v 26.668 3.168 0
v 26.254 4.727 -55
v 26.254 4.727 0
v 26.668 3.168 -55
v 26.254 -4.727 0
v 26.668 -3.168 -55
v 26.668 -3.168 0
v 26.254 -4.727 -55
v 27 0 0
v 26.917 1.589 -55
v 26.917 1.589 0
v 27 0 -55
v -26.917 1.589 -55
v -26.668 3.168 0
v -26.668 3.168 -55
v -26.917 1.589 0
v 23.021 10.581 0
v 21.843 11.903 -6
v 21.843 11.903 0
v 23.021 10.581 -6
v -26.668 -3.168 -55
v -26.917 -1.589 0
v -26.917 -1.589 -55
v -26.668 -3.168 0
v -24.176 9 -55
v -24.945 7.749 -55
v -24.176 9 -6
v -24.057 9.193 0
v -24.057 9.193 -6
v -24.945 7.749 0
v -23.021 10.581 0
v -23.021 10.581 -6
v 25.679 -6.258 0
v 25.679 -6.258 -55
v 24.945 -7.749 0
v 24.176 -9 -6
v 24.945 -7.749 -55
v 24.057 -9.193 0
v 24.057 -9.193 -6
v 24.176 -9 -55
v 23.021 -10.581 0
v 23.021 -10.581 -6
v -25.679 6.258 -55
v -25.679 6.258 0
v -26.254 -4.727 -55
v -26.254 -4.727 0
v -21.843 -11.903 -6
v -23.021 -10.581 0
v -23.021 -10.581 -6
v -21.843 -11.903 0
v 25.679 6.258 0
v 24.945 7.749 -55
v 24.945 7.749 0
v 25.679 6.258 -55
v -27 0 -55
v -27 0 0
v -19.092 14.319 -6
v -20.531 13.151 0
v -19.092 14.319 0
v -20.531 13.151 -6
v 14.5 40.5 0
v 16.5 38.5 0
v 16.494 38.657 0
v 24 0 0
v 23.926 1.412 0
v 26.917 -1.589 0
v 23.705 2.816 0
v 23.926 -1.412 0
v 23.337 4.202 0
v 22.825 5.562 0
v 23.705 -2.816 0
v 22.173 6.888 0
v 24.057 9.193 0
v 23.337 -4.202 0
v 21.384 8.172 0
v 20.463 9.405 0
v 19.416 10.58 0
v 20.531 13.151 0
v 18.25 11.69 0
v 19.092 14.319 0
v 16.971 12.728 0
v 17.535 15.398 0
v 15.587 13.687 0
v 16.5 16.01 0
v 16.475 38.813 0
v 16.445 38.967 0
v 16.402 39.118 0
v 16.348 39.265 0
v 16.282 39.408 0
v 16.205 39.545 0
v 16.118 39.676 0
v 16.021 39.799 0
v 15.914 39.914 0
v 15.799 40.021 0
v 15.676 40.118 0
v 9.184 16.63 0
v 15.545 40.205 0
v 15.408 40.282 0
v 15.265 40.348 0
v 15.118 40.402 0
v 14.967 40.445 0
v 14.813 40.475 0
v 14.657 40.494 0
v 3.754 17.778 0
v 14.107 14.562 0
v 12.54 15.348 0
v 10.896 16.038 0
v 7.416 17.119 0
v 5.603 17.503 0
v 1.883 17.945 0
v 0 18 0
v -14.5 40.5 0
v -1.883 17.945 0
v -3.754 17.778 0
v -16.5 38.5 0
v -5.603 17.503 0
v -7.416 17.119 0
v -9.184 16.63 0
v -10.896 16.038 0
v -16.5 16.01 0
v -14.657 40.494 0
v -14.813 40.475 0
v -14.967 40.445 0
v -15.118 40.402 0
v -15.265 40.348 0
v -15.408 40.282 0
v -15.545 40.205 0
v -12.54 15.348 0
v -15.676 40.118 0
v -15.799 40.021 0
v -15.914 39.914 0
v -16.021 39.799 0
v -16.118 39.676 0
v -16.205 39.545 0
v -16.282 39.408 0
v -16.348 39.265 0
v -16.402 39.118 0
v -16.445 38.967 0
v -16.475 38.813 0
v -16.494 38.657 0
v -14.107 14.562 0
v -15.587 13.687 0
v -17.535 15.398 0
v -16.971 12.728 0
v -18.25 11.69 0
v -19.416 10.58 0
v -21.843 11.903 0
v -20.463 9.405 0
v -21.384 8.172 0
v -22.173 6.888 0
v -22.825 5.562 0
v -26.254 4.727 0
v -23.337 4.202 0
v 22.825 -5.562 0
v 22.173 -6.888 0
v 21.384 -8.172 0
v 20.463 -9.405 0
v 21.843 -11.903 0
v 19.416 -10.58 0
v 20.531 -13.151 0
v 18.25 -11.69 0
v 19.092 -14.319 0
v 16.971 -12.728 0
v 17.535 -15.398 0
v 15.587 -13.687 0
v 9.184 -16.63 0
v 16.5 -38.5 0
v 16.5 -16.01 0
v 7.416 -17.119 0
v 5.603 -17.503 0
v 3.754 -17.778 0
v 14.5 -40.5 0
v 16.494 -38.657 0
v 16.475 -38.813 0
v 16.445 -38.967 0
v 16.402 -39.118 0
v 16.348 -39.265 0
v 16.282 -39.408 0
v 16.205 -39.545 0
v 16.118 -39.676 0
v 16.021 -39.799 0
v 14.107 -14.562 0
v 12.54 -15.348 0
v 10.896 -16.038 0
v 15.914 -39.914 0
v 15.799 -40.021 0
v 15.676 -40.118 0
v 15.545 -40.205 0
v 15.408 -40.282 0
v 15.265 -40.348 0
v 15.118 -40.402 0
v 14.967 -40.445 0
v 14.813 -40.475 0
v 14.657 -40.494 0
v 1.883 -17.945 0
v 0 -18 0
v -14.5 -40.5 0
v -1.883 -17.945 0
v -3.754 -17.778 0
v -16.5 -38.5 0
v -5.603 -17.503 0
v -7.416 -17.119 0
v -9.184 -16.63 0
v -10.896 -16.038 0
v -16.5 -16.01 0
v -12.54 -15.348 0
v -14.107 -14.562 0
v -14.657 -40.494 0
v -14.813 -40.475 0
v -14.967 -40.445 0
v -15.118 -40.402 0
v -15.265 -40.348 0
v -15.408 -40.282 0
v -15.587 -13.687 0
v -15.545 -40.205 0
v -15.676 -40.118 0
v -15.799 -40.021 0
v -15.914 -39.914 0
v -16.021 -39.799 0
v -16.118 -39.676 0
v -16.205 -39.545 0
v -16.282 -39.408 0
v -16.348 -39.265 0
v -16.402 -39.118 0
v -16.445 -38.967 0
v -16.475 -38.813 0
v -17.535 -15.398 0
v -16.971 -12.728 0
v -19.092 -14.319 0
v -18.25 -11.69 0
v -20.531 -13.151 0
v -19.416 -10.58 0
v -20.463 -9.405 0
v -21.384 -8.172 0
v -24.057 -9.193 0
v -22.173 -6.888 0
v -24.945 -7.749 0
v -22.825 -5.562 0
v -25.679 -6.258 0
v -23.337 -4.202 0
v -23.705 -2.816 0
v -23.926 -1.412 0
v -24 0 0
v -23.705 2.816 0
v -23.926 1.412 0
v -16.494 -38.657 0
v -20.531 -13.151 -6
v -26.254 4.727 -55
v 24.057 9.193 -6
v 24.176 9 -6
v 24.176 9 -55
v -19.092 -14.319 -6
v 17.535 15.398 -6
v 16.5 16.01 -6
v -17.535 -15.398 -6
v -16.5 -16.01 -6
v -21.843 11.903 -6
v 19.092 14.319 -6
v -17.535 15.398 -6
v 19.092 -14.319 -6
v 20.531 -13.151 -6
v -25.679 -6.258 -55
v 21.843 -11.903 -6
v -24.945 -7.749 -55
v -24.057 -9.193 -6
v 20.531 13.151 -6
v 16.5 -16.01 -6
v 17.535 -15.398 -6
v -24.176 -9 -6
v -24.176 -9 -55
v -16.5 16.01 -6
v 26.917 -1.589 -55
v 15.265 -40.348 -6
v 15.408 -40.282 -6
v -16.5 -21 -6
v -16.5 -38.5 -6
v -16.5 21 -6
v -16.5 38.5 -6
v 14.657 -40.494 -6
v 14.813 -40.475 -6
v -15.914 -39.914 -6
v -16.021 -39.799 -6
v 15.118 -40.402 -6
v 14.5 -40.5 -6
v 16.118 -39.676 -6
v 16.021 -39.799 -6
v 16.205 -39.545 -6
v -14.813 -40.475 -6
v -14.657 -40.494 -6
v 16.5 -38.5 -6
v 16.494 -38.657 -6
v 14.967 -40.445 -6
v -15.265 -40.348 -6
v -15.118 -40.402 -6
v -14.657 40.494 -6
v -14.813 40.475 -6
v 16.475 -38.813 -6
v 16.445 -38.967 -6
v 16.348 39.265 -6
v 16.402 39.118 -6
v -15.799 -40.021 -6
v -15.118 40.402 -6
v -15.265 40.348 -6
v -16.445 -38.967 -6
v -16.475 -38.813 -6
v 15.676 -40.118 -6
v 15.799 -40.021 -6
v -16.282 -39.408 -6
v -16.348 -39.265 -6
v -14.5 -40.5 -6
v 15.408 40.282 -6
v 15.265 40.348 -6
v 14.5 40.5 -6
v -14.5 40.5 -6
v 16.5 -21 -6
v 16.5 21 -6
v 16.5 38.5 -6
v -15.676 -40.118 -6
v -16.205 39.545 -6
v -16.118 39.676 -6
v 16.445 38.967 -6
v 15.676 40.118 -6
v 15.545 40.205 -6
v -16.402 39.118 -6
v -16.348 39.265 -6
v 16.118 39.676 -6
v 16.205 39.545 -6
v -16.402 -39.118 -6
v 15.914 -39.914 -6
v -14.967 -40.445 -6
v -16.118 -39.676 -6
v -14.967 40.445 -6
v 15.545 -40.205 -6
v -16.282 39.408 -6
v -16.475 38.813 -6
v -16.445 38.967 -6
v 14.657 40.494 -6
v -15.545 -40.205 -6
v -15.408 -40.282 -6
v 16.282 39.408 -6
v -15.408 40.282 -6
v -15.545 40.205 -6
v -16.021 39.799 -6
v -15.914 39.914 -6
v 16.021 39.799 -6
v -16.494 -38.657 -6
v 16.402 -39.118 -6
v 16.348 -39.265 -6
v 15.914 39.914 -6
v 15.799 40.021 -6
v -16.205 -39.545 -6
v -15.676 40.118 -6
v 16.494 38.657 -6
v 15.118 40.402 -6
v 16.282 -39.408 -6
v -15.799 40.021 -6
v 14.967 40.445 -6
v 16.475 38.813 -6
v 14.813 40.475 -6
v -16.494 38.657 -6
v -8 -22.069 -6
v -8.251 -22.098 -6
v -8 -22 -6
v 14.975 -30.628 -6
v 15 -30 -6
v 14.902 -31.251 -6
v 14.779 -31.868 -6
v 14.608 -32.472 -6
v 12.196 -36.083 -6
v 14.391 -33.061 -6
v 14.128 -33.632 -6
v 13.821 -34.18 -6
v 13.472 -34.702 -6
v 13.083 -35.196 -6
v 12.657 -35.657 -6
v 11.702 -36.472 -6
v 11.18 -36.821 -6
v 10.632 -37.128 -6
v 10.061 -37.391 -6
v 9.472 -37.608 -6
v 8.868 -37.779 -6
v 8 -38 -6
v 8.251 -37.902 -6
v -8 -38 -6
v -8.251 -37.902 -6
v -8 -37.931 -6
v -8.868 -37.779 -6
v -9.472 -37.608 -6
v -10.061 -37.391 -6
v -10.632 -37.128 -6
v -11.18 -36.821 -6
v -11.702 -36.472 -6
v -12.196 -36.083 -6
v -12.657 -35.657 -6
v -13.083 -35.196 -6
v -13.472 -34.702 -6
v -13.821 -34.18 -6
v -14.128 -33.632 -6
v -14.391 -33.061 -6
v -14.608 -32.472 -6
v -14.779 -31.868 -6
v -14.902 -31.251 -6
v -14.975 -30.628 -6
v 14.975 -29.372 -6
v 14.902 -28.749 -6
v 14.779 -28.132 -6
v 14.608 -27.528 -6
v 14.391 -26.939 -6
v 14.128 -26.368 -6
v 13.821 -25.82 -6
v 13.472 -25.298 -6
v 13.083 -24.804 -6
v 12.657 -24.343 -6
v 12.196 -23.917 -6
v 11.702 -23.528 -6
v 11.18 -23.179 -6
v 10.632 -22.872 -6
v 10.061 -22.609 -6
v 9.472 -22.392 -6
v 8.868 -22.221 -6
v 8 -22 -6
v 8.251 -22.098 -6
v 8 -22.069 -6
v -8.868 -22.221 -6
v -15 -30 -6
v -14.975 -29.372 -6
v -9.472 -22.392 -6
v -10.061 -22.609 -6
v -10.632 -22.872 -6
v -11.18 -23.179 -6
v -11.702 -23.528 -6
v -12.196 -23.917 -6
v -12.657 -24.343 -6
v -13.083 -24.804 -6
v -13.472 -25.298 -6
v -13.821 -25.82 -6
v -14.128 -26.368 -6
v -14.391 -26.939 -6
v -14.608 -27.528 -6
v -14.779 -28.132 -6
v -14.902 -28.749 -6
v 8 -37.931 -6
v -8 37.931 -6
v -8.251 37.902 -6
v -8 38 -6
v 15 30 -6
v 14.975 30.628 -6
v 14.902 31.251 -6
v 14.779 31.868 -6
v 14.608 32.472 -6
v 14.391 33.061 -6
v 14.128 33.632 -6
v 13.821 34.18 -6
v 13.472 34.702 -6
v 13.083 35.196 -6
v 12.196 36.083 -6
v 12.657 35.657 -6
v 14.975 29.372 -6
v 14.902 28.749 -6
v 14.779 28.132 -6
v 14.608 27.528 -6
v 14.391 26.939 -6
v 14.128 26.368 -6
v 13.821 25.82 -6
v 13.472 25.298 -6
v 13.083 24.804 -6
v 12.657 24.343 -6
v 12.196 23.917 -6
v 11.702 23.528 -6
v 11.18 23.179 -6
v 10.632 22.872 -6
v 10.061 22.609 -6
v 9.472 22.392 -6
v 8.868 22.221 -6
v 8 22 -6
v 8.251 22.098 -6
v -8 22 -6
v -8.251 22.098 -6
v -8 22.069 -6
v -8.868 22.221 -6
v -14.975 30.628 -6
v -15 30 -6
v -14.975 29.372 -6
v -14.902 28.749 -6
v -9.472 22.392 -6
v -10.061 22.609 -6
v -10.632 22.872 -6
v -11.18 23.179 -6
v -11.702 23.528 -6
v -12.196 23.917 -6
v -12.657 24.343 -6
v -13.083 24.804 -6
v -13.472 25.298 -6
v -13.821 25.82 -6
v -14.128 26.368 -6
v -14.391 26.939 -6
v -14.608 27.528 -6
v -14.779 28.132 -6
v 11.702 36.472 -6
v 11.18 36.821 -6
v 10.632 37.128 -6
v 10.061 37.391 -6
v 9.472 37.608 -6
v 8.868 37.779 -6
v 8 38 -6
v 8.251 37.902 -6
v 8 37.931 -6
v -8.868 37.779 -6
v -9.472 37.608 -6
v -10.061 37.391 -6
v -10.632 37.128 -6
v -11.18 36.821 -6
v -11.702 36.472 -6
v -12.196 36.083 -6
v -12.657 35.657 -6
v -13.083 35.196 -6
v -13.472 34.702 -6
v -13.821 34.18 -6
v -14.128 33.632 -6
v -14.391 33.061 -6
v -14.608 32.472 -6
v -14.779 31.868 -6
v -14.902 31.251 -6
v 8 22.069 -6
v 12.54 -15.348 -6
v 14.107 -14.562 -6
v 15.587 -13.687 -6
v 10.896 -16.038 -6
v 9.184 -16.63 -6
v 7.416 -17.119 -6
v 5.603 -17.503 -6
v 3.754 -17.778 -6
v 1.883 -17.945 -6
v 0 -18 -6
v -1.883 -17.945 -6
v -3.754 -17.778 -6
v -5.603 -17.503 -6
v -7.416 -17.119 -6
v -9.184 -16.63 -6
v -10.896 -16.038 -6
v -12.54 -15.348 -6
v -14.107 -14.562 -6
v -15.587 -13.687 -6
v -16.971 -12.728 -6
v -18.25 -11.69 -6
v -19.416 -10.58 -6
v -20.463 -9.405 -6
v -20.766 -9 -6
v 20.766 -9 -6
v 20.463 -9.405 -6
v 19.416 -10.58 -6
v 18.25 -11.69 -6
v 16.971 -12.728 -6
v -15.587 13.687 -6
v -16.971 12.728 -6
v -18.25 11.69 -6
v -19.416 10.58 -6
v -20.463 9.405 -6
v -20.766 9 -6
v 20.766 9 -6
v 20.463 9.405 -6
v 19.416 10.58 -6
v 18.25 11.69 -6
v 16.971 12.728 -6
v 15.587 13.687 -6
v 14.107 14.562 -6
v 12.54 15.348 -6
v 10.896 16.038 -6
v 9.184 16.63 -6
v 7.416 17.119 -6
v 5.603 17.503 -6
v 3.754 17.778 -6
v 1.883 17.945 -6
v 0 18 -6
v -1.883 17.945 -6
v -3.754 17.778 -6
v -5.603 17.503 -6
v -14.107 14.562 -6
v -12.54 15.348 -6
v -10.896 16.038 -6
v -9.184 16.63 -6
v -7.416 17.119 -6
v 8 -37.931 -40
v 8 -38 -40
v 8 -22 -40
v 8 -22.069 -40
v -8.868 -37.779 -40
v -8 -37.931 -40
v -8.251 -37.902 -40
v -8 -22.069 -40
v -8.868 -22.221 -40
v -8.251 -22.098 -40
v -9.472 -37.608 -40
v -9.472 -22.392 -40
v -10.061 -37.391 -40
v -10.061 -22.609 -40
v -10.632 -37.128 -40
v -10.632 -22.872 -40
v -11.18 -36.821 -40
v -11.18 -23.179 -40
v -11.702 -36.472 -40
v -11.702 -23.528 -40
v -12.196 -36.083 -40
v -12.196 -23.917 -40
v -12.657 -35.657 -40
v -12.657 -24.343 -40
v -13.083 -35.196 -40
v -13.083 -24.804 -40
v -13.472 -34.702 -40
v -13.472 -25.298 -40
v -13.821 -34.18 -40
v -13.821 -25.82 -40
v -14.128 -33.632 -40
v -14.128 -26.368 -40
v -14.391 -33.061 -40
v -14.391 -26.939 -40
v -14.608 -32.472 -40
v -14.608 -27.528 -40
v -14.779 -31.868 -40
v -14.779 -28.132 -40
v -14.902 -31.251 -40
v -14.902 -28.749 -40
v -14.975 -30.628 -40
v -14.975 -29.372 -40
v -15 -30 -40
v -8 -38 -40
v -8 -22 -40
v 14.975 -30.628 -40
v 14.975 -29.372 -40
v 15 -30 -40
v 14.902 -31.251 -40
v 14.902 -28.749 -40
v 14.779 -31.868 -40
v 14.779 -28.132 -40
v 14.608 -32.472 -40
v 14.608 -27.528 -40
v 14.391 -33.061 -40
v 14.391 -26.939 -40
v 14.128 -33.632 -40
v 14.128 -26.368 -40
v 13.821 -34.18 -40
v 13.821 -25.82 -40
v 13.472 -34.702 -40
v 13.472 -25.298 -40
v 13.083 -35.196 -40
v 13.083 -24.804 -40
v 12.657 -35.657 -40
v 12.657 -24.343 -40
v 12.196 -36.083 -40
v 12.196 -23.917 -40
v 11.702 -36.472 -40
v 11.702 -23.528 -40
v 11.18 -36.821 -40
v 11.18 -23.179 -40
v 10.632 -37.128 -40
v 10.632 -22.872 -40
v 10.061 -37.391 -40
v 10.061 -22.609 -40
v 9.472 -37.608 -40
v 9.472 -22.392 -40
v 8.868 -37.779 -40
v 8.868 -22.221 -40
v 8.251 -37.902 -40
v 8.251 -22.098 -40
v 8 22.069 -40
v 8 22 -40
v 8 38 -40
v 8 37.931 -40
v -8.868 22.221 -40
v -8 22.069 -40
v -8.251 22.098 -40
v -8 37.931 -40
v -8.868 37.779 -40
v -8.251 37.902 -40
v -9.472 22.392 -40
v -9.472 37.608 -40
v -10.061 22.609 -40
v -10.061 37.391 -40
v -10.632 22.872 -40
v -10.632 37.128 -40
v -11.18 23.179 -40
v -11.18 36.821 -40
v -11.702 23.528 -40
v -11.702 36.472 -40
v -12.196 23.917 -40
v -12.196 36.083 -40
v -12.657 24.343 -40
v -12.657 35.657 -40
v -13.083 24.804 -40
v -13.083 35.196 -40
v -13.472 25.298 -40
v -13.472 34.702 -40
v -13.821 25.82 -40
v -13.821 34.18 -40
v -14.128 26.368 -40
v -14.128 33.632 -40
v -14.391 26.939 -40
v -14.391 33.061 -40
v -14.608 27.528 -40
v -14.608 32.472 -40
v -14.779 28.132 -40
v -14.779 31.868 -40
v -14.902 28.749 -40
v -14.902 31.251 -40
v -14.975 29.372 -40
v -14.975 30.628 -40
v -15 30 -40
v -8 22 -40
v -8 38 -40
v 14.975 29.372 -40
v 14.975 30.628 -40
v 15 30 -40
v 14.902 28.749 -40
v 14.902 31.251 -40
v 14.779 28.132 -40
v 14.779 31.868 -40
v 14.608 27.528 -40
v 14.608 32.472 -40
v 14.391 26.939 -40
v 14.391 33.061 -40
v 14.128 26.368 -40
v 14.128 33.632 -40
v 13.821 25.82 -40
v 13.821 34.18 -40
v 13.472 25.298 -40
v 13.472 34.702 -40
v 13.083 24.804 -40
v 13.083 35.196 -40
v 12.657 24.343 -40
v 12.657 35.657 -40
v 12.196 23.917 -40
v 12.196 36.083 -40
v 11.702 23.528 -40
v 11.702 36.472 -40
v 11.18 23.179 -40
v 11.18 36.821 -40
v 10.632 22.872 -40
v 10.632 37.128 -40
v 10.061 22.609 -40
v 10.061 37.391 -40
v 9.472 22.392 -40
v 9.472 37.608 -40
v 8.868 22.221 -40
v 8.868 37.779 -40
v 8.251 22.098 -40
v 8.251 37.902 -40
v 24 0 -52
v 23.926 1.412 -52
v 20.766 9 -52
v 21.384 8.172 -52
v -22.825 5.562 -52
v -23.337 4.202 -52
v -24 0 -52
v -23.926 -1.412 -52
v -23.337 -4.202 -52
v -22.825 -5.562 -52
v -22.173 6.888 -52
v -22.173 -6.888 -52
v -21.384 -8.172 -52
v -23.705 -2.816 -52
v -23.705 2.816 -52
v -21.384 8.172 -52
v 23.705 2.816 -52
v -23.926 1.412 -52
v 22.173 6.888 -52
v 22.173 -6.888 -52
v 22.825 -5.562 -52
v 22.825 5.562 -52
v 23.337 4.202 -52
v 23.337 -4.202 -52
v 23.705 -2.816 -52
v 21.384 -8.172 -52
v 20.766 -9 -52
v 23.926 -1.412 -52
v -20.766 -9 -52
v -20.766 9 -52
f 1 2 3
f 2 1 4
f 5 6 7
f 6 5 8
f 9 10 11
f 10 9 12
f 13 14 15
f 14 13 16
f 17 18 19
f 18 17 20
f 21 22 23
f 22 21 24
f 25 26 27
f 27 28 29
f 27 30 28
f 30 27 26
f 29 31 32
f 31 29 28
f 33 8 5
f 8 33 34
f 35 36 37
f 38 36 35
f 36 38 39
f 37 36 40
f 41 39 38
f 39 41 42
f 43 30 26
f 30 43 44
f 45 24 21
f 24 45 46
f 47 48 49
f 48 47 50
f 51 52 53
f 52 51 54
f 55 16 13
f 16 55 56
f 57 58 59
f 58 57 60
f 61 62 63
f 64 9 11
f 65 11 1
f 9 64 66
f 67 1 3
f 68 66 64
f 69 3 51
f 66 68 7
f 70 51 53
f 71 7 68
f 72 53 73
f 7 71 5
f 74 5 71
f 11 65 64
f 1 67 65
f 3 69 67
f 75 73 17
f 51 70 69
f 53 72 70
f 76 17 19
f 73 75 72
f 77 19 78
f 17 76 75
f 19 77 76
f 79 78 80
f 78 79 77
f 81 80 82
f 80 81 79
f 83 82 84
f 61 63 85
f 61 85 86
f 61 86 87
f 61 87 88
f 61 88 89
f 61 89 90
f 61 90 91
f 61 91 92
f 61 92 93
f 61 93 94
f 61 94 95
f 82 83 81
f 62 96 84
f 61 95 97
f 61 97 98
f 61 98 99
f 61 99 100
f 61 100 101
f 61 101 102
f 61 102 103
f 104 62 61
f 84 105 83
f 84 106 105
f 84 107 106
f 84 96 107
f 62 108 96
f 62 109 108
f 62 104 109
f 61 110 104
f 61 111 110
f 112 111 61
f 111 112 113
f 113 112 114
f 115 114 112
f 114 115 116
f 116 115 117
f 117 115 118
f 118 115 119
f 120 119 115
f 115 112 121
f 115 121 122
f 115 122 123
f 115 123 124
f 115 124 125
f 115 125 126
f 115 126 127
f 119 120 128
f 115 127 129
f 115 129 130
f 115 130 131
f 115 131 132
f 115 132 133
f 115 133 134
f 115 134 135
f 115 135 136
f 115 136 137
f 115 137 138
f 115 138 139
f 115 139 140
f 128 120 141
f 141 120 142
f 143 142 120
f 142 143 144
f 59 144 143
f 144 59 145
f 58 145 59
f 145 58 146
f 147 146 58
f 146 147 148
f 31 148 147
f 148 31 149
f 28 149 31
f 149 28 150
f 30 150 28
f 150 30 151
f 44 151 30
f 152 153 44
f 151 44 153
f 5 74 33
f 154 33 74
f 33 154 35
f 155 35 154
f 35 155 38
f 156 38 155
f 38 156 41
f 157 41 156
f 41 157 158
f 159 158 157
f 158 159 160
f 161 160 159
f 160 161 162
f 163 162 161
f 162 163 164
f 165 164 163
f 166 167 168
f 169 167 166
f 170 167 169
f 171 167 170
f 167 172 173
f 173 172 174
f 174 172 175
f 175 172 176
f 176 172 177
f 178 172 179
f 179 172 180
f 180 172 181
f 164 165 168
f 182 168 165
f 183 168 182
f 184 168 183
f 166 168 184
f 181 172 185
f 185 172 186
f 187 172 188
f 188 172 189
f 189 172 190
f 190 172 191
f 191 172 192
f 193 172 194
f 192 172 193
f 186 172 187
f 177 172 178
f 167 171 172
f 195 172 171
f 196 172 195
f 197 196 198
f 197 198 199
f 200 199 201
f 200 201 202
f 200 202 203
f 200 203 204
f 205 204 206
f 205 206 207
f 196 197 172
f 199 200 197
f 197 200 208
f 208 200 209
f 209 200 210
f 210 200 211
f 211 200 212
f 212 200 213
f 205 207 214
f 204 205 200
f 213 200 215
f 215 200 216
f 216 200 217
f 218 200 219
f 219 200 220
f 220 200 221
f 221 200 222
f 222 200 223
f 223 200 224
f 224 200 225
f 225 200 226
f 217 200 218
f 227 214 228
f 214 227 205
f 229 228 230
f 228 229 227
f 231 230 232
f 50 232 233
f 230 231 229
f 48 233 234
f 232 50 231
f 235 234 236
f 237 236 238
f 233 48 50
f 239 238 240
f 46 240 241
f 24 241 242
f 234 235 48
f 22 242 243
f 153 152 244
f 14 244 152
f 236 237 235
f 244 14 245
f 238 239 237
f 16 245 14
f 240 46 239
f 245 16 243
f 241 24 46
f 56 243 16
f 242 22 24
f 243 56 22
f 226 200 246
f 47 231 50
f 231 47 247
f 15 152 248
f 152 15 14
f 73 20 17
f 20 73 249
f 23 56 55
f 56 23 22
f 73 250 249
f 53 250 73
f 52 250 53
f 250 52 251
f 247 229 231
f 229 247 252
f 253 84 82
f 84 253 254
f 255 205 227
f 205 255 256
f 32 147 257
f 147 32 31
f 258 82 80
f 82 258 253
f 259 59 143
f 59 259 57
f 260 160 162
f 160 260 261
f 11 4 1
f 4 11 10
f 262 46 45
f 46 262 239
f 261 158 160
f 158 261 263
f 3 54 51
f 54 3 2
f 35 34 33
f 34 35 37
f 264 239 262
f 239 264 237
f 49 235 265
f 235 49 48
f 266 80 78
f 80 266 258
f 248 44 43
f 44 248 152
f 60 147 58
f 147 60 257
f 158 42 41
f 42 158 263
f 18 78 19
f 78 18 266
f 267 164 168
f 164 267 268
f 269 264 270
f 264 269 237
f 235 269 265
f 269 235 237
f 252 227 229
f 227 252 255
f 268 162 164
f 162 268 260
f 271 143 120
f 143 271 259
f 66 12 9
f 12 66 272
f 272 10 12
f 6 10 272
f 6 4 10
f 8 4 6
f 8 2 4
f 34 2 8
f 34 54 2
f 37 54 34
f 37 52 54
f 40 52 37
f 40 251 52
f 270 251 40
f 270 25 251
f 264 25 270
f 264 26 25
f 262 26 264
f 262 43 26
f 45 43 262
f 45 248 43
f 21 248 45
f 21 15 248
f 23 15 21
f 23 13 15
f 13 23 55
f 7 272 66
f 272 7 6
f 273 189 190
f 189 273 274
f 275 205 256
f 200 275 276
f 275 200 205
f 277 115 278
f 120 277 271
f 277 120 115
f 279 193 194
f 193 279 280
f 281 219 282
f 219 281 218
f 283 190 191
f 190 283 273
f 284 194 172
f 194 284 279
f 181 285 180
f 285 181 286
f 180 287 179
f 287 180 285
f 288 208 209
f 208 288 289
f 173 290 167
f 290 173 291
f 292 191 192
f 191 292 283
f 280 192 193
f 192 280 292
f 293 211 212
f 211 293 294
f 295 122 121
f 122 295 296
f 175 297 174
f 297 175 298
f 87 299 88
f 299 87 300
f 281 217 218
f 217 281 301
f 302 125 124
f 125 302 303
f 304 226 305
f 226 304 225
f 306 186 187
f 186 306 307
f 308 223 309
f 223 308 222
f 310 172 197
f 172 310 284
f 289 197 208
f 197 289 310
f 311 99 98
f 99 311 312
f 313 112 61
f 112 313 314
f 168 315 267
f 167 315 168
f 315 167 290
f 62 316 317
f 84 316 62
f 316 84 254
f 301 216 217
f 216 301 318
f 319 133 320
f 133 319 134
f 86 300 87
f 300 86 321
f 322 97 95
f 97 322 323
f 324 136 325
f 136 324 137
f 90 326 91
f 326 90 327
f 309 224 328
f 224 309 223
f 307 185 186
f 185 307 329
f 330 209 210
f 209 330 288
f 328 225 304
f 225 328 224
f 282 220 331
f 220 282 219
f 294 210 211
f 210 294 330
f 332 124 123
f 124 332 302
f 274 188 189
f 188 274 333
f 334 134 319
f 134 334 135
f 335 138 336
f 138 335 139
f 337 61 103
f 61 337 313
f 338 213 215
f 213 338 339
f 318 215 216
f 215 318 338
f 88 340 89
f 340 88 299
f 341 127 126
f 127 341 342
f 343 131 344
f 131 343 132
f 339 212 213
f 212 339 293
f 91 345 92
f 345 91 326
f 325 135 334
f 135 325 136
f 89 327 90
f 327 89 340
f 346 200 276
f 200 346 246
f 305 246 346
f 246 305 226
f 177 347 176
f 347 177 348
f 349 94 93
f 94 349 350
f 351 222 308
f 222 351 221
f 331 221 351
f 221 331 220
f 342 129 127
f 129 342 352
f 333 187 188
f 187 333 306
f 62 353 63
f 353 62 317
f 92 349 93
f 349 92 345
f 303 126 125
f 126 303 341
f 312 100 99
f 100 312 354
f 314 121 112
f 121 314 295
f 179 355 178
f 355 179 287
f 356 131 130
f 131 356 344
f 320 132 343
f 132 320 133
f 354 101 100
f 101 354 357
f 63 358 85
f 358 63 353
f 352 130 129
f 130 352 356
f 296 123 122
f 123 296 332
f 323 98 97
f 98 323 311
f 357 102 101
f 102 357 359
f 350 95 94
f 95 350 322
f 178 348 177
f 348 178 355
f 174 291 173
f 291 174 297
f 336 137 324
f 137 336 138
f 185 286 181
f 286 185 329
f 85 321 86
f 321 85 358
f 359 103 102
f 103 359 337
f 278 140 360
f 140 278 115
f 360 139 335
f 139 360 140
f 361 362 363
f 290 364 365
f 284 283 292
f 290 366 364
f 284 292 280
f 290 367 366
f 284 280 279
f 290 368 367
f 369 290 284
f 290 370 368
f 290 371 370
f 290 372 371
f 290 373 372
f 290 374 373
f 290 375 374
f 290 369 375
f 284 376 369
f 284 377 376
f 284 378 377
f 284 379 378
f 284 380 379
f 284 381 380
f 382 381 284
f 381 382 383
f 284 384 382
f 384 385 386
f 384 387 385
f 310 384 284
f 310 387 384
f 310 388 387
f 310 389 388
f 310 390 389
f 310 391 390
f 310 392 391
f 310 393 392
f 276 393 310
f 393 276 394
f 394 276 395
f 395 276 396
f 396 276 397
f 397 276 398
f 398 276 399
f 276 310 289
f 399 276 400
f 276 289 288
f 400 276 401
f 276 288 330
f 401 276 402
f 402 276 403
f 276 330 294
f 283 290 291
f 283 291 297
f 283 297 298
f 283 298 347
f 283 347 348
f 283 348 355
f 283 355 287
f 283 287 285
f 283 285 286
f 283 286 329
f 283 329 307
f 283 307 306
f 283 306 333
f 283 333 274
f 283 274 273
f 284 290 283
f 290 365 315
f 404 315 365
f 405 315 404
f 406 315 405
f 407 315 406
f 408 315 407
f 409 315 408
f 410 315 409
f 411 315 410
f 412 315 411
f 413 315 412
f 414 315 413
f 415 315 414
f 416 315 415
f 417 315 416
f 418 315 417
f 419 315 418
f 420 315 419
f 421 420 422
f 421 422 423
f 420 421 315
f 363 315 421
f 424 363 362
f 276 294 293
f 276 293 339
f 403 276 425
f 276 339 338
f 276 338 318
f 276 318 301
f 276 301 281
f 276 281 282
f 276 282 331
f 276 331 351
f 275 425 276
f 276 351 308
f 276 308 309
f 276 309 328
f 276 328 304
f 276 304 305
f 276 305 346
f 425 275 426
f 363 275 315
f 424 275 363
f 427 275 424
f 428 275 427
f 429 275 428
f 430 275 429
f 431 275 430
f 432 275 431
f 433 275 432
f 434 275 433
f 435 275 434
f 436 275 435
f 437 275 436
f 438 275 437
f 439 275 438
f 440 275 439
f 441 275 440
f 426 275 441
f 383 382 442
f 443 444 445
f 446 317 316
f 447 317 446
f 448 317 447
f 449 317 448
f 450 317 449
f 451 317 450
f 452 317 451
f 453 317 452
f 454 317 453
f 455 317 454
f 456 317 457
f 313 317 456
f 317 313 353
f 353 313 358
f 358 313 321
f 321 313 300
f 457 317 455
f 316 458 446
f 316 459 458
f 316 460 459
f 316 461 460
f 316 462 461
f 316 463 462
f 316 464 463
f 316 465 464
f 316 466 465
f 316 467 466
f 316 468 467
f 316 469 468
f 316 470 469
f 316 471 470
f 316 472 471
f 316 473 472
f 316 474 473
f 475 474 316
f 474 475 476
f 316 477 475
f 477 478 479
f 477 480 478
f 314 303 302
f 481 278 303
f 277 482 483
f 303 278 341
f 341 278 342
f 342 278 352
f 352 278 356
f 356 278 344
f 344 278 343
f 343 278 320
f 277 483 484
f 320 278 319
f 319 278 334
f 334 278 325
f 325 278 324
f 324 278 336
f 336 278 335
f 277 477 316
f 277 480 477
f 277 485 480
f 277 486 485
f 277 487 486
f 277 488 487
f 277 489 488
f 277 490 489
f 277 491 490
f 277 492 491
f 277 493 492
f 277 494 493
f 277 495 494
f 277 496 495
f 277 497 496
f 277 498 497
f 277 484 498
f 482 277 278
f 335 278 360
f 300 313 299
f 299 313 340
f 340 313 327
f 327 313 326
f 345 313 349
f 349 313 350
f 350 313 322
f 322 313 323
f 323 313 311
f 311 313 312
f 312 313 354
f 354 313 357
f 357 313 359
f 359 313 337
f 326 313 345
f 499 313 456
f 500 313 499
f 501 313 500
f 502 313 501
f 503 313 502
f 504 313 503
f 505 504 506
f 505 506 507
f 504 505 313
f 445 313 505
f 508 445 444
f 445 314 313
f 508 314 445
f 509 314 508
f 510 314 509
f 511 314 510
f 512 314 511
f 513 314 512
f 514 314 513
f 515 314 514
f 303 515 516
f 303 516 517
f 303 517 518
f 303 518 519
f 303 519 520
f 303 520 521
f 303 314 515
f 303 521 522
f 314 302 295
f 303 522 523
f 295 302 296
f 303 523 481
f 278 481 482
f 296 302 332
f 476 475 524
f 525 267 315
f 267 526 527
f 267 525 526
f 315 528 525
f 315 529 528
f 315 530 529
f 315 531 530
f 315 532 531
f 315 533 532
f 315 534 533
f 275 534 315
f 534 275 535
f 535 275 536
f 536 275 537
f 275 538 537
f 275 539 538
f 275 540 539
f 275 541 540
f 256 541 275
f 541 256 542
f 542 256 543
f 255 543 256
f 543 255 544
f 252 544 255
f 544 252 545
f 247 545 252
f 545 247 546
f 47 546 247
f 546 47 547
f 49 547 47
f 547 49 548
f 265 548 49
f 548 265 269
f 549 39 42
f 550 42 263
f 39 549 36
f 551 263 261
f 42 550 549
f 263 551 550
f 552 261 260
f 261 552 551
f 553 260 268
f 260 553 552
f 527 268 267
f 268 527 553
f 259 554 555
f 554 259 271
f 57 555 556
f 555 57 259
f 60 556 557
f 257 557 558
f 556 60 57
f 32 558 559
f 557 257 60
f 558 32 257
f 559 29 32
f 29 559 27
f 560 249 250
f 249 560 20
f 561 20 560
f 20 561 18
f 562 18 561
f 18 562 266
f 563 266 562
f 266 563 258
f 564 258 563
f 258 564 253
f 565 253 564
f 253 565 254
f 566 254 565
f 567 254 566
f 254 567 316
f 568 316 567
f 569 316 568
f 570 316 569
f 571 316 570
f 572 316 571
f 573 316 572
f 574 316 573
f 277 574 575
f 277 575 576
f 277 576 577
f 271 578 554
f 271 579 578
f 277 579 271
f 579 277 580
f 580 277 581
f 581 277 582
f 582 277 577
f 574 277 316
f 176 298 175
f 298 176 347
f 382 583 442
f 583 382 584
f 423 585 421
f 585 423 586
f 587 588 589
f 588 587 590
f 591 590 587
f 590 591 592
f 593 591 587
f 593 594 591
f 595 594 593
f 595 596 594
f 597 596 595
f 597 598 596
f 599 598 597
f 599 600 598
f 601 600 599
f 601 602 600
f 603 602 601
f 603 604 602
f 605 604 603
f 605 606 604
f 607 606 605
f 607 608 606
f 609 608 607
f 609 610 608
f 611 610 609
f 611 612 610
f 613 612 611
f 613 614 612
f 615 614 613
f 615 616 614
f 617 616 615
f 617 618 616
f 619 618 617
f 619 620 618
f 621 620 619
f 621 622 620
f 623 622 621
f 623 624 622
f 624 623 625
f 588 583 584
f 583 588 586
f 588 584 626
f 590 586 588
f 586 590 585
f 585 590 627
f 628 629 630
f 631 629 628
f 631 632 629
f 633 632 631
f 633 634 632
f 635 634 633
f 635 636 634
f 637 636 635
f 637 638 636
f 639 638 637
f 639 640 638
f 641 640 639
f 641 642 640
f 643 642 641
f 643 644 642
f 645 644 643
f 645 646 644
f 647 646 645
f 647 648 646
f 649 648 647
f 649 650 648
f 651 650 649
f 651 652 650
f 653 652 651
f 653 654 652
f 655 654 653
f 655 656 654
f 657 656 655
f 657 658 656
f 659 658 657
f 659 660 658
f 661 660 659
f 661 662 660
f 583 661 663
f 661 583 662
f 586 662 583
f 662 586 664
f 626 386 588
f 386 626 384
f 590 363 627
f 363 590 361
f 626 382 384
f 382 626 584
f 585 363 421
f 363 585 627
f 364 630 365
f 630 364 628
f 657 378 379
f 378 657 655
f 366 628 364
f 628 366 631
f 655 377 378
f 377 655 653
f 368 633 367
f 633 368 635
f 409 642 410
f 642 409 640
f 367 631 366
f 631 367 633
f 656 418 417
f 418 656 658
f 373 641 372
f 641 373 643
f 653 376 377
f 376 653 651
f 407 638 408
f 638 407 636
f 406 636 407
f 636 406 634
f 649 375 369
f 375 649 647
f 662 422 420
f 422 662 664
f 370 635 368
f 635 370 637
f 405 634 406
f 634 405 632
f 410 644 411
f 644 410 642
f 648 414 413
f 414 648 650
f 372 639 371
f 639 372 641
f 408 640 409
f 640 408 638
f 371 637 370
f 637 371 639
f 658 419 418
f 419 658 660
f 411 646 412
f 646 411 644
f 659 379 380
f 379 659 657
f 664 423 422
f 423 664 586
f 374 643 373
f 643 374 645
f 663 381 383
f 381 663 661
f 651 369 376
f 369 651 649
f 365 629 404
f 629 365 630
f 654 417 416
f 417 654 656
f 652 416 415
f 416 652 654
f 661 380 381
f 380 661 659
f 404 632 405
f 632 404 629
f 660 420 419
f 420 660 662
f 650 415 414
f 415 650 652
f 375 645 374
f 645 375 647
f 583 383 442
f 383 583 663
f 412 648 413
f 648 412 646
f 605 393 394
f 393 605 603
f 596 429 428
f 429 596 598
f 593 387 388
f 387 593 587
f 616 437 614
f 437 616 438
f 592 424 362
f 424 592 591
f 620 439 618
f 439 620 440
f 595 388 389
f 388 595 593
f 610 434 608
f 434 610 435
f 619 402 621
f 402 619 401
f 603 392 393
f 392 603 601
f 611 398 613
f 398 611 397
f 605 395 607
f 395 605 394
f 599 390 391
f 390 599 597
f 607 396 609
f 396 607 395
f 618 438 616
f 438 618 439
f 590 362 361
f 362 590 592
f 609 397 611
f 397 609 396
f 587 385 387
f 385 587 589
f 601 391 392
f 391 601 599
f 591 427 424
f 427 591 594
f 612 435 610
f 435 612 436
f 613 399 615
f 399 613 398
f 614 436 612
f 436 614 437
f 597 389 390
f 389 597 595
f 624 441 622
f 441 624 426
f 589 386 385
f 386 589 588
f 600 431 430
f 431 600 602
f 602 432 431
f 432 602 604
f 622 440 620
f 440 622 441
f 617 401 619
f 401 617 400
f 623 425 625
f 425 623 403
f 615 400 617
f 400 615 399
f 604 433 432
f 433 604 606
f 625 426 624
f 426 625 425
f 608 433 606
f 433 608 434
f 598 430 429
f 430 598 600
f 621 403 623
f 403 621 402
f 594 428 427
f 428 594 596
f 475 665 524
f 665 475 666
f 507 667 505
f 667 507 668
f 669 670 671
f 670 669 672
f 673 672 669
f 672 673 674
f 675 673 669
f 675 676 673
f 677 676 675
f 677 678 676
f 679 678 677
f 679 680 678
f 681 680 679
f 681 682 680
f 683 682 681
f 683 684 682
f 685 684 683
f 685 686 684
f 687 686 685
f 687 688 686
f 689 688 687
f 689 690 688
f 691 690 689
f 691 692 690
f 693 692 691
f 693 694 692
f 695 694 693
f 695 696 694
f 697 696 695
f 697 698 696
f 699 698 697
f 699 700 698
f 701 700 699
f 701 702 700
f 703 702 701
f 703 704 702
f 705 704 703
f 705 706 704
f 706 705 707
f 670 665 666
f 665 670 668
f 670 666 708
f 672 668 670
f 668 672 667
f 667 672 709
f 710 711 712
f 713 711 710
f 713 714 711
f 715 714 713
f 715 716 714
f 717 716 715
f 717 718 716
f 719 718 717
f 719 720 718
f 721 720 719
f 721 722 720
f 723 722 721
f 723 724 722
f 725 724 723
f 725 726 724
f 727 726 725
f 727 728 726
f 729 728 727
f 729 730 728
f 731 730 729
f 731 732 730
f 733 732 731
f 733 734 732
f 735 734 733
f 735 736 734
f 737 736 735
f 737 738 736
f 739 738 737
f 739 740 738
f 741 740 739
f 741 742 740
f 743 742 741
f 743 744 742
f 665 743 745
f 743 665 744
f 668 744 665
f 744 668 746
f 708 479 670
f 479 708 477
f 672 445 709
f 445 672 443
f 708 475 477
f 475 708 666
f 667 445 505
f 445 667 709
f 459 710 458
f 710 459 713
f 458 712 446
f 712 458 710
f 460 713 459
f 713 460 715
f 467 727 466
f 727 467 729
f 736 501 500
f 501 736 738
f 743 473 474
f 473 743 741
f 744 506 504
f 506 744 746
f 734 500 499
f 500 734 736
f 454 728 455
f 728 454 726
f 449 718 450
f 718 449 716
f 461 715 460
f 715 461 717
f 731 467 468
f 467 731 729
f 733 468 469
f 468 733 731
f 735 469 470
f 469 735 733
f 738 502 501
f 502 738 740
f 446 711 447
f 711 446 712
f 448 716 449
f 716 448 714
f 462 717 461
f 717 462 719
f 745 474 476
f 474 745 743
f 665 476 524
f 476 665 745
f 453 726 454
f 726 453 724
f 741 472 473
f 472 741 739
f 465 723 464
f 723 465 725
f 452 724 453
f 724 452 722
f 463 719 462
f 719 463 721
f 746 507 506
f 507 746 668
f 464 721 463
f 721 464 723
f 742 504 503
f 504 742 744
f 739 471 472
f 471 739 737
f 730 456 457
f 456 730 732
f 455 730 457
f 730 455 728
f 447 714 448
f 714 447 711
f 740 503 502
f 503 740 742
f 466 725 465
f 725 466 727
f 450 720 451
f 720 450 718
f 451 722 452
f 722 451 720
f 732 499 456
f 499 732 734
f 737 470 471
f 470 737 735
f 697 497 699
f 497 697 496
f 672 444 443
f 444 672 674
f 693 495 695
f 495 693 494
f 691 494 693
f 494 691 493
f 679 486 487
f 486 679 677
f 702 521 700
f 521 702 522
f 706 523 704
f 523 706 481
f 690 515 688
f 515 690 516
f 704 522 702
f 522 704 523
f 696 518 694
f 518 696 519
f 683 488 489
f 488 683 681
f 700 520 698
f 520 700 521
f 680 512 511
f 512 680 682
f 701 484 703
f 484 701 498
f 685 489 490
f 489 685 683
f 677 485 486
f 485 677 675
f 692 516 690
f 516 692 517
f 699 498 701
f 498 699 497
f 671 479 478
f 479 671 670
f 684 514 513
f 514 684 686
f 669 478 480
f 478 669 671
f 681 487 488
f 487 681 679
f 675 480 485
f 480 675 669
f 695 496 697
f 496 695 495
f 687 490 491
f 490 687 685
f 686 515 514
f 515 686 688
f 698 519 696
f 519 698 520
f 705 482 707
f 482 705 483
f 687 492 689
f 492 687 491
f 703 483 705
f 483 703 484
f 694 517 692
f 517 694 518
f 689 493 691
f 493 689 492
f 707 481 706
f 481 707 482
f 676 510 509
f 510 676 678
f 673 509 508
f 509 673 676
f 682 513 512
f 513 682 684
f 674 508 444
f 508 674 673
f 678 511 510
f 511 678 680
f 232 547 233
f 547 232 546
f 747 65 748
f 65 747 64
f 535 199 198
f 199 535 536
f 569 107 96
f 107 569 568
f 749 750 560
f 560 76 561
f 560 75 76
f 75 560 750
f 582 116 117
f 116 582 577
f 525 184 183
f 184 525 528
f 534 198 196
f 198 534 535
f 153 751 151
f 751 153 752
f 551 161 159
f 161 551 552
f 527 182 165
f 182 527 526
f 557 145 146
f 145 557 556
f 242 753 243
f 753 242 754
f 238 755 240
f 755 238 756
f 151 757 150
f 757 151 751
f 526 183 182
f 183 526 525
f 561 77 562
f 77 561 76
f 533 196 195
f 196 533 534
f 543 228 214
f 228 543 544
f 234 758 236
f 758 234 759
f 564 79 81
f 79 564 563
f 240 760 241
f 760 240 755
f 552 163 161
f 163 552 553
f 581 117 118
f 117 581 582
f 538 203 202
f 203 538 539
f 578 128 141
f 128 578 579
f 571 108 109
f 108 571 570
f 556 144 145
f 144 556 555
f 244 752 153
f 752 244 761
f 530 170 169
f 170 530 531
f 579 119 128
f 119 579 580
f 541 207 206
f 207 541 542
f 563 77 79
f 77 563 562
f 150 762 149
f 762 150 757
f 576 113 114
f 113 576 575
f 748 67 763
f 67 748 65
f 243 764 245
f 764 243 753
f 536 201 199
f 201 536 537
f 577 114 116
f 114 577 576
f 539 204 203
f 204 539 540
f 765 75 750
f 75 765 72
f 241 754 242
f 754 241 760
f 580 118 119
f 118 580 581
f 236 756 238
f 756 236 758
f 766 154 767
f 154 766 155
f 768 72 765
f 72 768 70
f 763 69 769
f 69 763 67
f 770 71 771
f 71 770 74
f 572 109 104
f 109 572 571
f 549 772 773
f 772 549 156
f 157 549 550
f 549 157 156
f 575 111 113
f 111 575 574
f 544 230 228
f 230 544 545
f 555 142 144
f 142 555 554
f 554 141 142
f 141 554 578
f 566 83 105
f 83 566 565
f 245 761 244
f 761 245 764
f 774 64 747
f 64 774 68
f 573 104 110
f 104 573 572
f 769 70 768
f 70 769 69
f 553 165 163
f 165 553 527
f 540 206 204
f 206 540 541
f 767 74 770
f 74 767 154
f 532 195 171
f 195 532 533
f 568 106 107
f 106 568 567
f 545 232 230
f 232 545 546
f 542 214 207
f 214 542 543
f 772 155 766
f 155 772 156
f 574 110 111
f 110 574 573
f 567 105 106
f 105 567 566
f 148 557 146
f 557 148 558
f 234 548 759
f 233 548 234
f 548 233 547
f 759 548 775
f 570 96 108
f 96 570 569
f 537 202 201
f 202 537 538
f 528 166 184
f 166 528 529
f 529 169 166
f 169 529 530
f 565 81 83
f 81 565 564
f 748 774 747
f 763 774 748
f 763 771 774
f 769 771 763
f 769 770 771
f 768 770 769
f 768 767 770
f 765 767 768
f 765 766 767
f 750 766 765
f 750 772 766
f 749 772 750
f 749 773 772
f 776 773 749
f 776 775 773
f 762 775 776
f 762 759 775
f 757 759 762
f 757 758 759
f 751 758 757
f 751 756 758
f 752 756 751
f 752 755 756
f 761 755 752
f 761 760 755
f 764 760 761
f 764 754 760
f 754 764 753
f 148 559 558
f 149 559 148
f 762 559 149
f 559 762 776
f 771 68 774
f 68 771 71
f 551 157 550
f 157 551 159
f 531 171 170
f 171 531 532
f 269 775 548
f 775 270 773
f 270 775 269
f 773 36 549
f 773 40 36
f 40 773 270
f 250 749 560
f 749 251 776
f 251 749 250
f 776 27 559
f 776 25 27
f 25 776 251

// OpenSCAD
$fn=80;
rotate([180,0,0])
difference () {
  union () {
    linear_extrude(height = 55) scale([1,0.75])circle(d=54);
    minkowski () 
      { 
        translate([0,0,2.5]) cube([29,77,5], center=true);
        cylinder(r=2,h=1);
      }
    translate([0,30,20]) cube([16,16,40], center=true);
    translate([7,30,0]) cylinder(40,8,8);
    translate([-7,30,0]) cylinder(40,8,8);
    translate([0,-30,20]) cube([16,16,40], center=true);
    translate([7,-30,0]) cylinder(40,8,8);
    translate([-7,-30,0]) cylinder(40,8,8);      
  }
  linear_extrude(height = 52) scale([1,0.75])circle(d=48);
  translate([0,15,36]) cube([60,12,60], center=true);
  translate([0,-15,36]) cube([60,12,60], center=true);
}
